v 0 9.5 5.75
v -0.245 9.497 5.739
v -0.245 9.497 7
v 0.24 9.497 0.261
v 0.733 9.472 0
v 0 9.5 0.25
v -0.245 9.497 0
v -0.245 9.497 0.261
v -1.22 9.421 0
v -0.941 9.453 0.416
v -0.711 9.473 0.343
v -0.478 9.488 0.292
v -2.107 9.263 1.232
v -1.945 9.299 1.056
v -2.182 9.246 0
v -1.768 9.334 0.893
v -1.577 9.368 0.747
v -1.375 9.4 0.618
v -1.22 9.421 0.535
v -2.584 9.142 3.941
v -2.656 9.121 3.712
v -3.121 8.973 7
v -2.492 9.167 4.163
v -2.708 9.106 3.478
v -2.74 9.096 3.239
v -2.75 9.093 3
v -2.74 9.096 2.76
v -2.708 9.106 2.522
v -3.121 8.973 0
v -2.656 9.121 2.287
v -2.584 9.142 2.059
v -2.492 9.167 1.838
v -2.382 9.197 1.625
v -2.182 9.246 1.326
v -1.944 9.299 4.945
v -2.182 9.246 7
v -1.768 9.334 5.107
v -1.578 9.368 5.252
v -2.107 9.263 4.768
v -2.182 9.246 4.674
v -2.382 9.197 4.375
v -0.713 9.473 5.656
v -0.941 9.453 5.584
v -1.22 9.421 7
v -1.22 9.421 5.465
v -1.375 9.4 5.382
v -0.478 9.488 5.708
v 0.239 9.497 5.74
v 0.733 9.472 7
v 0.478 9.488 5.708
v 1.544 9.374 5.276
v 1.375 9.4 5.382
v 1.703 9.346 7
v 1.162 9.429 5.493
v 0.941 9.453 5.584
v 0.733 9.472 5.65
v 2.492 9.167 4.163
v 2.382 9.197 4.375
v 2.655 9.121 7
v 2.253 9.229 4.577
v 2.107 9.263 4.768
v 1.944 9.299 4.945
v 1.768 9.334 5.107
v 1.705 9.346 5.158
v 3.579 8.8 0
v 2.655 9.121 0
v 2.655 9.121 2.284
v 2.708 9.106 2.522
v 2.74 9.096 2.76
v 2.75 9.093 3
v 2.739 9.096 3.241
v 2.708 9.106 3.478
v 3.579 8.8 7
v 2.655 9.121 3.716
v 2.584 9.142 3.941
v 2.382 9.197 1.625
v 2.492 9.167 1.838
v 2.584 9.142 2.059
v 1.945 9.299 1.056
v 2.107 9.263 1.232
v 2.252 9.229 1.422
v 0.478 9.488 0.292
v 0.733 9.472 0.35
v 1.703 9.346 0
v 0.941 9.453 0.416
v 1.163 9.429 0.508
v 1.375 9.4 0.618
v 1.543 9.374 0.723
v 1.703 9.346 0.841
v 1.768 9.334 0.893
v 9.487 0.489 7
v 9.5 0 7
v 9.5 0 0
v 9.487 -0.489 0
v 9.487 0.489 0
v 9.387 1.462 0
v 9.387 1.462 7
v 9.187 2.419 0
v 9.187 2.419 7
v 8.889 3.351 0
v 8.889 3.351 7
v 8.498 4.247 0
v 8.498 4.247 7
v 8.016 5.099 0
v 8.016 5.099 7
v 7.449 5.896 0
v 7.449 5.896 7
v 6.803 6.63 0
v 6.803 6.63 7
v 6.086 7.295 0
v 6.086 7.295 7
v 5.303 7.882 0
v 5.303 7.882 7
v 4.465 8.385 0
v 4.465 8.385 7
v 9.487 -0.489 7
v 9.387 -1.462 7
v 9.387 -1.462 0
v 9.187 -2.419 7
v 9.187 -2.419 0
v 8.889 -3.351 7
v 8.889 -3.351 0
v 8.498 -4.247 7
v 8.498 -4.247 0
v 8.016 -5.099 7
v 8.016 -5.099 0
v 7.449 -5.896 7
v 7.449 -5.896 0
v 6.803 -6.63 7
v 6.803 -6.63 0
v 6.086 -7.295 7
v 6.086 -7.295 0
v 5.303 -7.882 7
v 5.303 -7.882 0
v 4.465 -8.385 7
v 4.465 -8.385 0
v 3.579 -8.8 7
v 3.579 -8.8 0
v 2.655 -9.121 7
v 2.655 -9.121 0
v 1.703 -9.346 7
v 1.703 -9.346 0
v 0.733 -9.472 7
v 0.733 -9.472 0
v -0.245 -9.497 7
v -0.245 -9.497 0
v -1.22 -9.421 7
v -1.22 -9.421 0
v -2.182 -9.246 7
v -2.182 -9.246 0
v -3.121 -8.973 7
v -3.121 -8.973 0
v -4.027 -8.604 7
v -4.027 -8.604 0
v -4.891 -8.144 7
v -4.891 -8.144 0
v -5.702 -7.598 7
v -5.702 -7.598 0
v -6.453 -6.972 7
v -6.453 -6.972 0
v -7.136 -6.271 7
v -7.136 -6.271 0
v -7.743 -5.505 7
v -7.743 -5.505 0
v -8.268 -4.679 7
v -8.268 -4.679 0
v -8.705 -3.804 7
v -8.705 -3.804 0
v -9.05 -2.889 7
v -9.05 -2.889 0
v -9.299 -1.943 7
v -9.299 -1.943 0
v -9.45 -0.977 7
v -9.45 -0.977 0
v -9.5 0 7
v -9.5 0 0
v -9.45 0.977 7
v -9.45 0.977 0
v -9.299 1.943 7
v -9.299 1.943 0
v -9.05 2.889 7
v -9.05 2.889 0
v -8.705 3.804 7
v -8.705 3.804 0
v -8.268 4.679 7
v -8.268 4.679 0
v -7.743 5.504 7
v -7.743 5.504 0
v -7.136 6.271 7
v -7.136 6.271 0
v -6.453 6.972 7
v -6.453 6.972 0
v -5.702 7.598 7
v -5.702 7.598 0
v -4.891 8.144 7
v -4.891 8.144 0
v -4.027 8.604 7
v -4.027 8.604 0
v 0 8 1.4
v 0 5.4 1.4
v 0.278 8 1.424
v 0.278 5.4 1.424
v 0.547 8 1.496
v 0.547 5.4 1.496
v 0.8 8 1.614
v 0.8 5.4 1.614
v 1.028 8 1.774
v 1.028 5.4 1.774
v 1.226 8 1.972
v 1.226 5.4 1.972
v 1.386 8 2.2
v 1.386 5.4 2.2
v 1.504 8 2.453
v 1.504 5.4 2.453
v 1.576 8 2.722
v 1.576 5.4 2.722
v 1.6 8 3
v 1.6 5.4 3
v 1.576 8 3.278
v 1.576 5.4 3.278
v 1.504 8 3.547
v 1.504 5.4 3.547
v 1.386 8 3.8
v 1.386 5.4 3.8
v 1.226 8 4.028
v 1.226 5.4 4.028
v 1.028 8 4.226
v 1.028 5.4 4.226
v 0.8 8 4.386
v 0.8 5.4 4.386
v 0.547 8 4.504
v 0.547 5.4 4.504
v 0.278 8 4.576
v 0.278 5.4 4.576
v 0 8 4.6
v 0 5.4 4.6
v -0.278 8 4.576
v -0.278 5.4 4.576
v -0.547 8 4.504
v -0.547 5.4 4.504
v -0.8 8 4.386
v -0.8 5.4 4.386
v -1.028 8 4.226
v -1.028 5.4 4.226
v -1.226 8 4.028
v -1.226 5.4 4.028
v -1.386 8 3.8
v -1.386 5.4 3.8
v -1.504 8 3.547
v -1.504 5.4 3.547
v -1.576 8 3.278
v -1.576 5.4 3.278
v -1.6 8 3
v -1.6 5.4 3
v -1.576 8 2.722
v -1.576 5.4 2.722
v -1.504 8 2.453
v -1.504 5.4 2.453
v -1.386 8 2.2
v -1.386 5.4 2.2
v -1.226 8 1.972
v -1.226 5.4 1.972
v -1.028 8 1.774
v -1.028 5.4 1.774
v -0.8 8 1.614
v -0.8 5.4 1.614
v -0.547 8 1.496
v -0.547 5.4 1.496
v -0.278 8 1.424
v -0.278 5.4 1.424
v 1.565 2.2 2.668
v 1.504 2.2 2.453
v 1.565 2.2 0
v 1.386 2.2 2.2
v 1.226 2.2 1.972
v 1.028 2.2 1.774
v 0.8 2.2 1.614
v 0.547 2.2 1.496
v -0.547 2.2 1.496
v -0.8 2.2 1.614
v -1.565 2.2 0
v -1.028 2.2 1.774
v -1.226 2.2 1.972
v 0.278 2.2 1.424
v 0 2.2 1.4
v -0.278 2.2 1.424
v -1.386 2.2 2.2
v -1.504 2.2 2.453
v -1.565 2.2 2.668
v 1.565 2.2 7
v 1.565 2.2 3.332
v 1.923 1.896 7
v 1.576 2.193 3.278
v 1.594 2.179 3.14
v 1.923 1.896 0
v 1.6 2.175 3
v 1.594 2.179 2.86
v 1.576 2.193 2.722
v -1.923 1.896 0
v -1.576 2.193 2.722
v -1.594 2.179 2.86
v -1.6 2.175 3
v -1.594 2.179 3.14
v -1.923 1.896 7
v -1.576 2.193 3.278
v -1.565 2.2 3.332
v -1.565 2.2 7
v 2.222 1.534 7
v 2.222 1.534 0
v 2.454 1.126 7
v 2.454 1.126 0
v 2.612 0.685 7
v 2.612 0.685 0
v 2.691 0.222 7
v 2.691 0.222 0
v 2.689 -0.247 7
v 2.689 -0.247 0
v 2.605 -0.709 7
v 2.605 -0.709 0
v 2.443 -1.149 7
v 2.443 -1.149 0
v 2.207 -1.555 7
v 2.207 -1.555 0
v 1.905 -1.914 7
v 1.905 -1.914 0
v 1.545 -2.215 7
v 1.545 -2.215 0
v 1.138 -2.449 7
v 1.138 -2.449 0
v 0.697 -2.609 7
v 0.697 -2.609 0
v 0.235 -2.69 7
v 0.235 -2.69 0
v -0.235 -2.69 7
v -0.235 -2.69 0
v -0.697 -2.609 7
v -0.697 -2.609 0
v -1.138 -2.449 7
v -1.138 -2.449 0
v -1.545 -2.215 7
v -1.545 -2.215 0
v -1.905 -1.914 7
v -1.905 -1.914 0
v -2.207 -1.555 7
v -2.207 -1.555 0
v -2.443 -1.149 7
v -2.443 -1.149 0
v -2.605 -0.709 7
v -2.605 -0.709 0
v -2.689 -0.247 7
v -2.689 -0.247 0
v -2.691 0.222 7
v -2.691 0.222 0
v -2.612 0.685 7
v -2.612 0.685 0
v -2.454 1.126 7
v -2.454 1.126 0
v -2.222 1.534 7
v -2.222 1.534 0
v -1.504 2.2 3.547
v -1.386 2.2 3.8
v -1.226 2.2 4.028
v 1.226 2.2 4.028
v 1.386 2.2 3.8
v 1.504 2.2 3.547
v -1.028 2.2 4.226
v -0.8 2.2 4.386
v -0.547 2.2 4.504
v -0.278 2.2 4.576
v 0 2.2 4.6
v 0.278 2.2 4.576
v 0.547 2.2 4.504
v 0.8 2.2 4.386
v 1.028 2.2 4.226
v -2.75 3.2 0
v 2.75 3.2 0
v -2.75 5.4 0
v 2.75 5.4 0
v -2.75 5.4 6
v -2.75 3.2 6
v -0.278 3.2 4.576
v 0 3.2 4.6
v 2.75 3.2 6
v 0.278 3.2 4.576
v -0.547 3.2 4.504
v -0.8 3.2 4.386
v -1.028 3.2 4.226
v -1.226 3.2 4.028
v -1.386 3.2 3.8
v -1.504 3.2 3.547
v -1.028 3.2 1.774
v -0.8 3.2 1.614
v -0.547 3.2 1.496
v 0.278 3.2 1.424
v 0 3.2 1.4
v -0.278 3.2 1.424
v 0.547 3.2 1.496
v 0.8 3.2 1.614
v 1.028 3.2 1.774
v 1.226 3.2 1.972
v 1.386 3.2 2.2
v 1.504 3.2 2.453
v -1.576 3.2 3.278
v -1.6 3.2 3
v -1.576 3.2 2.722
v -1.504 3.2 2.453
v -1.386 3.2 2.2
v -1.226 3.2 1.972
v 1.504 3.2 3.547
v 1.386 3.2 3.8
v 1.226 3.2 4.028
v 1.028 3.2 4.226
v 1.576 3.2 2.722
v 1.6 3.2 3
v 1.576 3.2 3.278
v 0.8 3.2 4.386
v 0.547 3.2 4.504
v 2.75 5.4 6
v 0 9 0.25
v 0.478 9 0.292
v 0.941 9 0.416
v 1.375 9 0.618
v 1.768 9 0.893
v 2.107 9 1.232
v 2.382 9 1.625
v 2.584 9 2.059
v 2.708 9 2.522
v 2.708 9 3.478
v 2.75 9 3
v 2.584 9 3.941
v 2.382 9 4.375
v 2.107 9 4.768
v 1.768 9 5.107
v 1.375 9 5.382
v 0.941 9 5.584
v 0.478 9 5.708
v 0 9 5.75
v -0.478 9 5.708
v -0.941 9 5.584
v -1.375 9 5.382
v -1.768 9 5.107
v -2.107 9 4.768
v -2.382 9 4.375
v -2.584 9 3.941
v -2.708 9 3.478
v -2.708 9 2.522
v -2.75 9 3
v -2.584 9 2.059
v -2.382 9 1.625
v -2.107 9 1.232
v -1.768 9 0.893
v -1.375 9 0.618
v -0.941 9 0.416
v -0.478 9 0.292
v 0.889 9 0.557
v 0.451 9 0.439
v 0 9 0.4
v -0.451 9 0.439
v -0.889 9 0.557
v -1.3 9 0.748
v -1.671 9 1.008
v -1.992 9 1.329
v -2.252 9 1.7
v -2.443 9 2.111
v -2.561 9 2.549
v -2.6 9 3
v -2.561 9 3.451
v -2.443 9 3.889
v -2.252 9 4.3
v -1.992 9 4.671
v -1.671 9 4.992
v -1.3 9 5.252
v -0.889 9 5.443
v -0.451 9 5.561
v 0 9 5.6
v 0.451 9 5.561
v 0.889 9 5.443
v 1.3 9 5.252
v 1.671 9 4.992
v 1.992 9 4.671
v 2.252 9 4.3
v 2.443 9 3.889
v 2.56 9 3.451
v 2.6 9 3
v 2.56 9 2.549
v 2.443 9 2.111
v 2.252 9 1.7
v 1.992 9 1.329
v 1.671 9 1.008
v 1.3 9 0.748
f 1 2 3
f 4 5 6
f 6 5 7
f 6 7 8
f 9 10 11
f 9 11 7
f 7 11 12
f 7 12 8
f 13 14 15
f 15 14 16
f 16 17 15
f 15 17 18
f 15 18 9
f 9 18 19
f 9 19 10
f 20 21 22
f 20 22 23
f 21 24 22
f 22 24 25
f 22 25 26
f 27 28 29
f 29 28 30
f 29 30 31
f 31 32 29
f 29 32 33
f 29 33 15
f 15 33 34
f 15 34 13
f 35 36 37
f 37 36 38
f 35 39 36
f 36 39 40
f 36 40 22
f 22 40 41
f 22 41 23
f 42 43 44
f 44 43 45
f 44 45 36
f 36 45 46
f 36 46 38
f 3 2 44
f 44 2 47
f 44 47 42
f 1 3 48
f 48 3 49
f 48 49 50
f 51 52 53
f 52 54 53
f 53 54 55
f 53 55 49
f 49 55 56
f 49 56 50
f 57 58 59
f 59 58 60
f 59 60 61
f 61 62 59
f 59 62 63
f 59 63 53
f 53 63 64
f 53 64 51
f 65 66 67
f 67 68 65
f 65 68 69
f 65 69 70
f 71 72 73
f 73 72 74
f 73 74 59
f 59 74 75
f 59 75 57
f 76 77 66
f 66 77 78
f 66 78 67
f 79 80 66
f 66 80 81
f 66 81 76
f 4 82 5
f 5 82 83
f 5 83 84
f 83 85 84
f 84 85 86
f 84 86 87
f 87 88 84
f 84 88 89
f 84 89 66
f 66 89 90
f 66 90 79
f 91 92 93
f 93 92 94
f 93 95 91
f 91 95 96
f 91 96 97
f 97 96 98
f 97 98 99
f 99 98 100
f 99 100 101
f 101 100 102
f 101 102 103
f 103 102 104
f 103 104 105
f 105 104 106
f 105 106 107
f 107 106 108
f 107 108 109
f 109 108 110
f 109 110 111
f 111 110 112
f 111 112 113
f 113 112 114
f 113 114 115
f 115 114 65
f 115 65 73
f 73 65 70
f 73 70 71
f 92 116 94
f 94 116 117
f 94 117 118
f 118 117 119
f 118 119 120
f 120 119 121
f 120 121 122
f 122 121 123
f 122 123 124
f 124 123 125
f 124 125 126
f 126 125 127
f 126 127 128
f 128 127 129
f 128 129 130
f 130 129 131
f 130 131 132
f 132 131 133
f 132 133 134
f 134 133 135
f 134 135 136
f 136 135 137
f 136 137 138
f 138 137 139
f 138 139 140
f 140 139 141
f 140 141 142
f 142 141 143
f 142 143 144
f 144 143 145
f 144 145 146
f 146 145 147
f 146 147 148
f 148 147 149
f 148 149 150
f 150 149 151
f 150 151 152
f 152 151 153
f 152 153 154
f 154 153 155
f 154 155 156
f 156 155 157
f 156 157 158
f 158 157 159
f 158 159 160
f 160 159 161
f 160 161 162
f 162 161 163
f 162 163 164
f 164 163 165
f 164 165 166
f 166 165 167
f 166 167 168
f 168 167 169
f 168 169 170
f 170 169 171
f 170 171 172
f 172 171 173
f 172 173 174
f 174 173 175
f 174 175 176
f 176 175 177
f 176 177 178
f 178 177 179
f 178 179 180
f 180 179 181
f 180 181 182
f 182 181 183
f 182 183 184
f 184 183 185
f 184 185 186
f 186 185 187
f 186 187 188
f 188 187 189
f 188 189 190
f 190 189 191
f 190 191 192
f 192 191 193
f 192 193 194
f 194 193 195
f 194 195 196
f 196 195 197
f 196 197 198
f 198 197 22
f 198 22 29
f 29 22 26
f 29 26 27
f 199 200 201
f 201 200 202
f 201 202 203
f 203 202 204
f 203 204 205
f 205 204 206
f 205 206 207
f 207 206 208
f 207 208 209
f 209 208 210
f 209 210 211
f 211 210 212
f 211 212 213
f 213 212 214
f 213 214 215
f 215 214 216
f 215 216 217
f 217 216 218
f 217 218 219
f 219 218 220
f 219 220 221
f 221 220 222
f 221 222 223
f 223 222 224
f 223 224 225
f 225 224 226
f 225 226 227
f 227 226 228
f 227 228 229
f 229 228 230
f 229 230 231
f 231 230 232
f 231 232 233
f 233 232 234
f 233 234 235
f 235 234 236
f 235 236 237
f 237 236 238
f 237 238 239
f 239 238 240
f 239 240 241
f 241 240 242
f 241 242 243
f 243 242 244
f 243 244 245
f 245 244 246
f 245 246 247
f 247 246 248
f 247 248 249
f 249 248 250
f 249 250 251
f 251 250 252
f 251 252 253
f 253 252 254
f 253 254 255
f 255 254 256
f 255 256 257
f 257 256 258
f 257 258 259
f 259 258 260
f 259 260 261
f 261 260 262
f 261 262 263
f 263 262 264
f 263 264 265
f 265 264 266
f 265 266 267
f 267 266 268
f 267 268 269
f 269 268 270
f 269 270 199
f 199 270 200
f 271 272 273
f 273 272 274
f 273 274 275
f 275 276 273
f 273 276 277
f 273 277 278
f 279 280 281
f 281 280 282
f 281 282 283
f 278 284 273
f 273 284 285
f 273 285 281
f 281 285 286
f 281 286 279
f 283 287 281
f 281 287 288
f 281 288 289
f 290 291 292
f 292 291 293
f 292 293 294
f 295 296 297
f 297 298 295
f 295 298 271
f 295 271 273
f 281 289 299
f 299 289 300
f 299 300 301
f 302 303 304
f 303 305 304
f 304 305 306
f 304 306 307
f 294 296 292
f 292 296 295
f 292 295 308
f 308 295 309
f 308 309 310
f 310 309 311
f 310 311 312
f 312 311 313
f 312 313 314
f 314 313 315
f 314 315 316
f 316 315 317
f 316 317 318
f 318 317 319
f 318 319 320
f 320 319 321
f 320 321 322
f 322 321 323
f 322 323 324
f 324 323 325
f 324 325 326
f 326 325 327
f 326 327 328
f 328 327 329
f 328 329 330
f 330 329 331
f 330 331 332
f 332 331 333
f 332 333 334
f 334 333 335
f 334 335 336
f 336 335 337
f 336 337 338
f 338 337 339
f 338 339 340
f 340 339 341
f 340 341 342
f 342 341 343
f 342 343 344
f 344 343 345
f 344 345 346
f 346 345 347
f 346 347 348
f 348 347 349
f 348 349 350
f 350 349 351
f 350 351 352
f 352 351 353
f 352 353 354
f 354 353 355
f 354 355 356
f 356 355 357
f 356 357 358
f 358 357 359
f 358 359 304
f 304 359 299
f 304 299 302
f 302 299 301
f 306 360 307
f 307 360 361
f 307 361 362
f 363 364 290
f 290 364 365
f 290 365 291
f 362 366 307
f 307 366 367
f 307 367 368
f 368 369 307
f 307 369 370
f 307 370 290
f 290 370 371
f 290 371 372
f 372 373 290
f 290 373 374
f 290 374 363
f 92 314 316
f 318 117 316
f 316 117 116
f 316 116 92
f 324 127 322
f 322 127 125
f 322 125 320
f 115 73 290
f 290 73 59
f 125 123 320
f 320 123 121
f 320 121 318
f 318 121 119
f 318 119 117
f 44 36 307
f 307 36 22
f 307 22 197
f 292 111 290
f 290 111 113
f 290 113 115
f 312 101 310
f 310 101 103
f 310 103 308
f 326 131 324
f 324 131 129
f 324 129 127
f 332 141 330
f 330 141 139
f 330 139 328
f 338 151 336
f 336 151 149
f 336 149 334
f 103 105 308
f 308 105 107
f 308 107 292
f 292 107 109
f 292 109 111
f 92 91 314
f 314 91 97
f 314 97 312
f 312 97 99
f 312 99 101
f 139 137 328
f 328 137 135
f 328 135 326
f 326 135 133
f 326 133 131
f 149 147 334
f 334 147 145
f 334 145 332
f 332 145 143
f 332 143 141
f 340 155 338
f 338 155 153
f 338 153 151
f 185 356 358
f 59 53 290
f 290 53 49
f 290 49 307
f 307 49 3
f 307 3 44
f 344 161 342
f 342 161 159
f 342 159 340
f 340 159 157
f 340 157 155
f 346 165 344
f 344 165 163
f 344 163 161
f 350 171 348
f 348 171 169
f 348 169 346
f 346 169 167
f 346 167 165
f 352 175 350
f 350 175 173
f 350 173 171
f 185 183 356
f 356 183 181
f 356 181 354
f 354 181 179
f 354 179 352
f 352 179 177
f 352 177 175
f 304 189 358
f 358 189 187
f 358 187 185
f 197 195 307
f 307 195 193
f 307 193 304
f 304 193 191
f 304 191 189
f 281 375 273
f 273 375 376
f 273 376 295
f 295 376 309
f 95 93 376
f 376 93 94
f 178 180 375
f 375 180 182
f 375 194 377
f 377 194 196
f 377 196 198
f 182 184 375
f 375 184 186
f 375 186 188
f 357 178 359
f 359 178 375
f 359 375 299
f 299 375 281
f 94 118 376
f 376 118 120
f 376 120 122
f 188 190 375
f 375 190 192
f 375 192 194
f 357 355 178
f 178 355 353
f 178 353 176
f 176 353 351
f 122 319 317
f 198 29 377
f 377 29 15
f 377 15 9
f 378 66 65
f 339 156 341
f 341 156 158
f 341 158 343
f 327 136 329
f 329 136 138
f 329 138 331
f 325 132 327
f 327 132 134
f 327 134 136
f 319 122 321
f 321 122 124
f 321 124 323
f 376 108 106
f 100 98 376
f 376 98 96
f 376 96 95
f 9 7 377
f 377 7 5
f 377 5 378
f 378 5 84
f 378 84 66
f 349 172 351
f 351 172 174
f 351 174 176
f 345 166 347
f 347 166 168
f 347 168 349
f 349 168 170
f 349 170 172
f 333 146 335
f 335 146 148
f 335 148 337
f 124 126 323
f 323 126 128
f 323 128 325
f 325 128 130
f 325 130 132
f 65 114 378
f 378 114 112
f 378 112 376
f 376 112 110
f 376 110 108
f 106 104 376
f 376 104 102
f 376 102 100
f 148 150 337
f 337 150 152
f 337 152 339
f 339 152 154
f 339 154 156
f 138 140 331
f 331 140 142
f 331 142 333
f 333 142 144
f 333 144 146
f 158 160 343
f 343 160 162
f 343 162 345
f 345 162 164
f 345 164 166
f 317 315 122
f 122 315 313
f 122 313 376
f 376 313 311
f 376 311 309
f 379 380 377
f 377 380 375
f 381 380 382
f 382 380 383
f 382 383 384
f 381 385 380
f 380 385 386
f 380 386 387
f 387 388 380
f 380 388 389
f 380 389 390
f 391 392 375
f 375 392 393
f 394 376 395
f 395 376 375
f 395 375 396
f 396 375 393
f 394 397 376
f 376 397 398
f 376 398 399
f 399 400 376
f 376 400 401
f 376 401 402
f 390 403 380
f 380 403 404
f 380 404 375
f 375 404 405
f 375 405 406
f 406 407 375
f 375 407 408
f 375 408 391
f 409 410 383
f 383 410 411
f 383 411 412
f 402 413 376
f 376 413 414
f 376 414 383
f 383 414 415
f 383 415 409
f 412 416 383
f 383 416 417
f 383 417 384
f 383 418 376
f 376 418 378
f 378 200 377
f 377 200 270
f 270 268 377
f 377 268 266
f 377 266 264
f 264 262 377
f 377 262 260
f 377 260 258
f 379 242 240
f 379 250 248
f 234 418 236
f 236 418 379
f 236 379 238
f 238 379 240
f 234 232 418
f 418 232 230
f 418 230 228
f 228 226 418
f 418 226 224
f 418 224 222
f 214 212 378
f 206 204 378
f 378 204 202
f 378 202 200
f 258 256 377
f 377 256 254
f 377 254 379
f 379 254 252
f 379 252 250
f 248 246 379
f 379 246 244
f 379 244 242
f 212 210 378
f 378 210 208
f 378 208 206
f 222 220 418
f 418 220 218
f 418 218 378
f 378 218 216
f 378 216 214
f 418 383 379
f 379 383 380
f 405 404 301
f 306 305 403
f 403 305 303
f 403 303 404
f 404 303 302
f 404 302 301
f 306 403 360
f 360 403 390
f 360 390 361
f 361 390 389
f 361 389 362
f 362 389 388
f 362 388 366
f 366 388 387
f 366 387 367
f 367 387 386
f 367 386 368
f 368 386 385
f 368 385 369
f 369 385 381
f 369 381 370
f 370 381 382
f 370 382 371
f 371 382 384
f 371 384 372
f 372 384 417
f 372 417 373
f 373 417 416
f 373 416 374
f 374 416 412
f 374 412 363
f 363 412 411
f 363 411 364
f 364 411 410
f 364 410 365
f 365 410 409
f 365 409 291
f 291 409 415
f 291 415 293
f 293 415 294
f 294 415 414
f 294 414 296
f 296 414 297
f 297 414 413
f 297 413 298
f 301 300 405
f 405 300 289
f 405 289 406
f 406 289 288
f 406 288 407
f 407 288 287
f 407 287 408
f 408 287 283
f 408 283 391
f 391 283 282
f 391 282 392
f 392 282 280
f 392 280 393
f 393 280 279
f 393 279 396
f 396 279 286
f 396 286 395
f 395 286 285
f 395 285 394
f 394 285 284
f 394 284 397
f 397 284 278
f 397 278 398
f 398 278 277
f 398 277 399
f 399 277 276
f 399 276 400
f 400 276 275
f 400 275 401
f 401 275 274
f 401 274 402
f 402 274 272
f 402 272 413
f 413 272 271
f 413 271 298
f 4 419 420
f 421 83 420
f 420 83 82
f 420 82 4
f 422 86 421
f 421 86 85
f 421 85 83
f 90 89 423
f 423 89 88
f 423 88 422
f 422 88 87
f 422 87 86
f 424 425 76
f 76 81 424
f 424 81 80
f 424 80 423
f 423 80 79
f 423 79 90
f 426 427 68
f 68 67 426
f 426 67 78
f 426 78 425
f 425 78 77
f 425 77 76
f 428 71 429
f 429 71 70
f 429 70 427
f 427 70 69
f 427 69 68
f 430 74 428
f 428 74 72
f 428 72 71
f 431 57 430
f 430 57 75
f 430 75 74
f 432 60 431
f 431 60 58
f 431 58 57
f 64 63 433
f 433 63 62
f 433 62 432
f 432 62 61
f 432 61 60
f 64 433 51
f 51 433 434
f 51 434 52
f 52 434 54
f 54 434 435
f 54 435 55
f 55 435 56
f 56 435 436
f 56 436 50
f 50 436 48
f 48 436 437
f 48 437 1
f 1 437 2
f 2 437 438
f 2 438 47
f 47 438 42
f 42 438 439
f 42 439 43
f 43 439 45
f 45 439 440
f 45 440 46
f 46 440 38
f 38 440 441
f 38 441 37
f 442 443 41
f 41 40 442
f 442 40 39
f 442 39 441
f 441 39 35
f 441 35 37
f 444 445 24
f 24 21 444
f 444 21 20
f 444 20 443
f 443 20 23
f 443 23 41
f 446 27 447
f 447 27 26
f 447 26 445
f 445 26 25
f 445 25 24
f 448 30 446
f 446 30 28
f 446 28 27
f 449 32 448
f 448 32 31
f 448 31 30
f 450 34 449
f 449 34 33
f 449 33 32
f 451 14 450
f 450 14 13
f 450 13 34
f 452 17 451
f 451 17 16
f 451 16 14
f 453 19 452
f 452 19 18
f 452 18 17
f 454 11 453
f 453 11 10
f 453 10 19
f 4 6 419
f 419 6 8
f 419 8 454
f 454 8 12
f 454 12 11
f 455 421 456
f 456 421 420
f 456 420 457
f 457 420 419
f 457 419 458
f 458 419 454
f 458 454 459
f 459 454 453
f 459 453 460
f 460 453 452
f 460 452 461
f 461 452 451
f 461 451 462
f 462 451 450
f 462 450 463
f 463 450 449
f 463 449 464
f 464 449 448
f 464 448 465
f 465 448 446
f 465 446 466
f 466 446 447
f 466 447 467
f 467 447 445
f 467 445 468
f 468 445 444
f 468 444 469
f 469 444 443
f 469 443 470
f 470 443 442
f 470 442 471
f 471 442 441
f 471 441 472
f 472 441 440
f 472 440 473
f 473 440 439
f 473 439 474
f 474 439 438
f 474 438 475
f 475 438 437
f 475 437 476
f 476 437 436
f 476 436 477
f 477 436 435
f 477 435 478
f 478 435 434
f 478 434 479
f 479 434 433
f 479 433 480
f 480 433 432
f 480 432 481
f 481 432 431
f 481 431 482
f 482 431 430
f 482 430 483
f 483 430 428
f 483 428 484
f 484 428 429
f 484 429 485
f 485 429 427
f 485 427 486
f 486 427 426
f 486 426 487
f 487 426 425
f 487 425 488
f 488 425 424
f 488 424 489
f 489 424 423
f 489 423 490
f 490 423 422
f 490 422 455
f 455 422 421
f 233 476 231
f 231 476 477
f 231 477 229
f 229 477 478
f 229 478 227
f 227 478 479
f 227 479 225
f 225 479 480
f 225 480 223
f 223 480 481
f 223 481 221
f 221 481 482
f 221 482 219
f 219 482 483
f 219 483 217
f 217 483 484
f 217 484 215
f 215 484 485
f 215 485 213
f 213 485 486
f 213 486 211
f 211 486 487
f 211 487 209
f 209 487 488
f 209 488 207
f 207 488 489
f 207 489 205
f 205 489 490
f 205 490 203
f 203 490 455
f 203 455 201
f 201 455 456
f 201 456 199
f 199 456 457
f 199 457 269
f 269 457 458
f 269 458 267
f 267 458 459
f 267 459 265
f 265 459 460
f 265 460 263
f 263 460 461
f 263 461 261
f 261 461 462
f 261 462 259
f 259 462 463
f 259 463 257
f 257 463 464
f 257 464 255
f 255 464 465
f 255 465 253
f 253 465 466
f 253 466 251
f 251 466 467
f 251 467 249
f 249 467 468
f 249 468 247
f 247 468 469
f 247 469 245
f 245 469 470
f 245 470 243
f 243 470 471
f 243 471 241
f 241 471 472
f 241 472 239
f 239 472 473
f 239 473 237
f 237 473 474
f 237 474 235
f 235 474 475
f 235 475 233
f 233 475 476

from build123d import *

# Parameters (mm, degrees)
ESQUISSE1_R                         = 9.5
BOSS_EXTRU_1_DEPTH                  = 7
ESQUISSE2_W                         = 5.5
ESQUISSE2_H                         = 2.2
ENL_V_MAT_EXTRU_1_DEPTH             = 6
ENL_V_MAT_EXTRU_2_REACH             = 19.336
ESQUISSE3_R                         = 1.6
ENL_V_MAT_EXTRU_2_DIRECTION_2_REACH = 19.336
ESQUISSE7_R                         = 2.75
ENL_V_MAT_EXTRU_4_DEPTH             = 22.943108417
CHANFREIN2_SIZE                     = 1


with BuildPart() as part:
    # Esquisse1 → Boss.-Extru.1 (new body)
    with BuildSketch(Plane.XY):
        Circle(ESQUISSE1_R)
        with BuildLine():
            Line((-1.565247584, 2.2), (1.565247584, 2.2))
            ThreePointArc((1.565247584, 2.2), (0, -2.7), (-1.565247584, 2.2))
        make_face(mode=Mode.SUBTRACT)
    extrude(amount=BOSS_EXTRU_1_DEPTH)

    # Esquisse2 → Enlèv. mat.-Extru.1 (cut)
    with BuildSketch(Plane(origin=(0, 0, 0), x_dir=(-1, 0, 0), z_dir=(0, 0, -1))):
        with Locations((0, 4.3)):
            Rectangle(ESQUISSE2_W, ESQUISSE2_H)
    extrude(amount=-ENL_V_MAT_EXTRU_1_DEPTH, mode=Mode.SUBTRACT)

    # Esquisse3 → Enlèv. mat.-Extru.2 (cut, up to next)
    with BuildSketch(Plane(origin=(0, 3.2, 0), x_dir=(1, 0, 0), z_dir=(0, 1, 0)), mode=Mode.PRIVATE) as enl_v_mat_extru_2_sk1:
        with Locations(Location((0, -3, 0), (0, 0, 90))):
            Circle(ESQUISSE3_R)
    enl_v_mat_extru_2_tool1 = extrude(enl_v_mat_extru_2_sk1.sketch, amount=-ENL_V_MAT_EXTRU_2_REACH, mode=Mode.PRIVATE) & part.part
    add(enl_v_mat_extru_2_tool1.solids().sort_by_distance((0, 3.2, 3))[0], mode=Mode.SUBTRACT)

    # Esquisse3 → Enlèv. mat.-Extru.2 direction 2 (cut, up to next)
    with BuildSketch(Plane(origin=(0, 3.2, 0), x_dir=(1, 0, 0), z_dir=(0, 1, 0)), mode=Mode.PRIVATE) as enl_v_mat_extru_2_direction_2_sk1:
        with Locations(Location((0, -3, 0), (0, 0, 90))):
            Circle(ESQUISSE3_R)
    enl_v_mat_extru_2_direction_2_tool1 = extrude(enl_v_mat_extru_2_direction_2_sk1.sketch, amount=ENL_V_MAT_EXTRU_2_DIRECTION_2_REACH, mode=Mode.PRIVATE) & part.part
    add(enl_v_mat_extru_2_direction_2_tool1.solids().sort_by_distance((0, 3.2, 3))[0], mode=Mode.SUBTRACT)

    # Esquisse7 → Enlèv. mat.-Extru.4 (cut, through all)
    with BuildSketch(Plane(origin=(0, 9, 0), x_dir=(1, 0, 0), z_dir=(0, 1, 0))):
        with Locations(Location((0, -3, 0), (0, 0, 90))):
            Circle(ESQUISSE7_R)
    extrude(amount=ENL_V_MAT_EXTRU_4_DEPTH, mode=Mode.SUBTRACT)

    # Chanfrein2
    chanfrein2_edges = [part.edges().sort_by_distance(p)[0] for p in [
        (0, 9, 4.6),
    ]]
    chamfer(chanfrein2_edges, length=CHANFREIN2_SIZE)


solid = part.part
